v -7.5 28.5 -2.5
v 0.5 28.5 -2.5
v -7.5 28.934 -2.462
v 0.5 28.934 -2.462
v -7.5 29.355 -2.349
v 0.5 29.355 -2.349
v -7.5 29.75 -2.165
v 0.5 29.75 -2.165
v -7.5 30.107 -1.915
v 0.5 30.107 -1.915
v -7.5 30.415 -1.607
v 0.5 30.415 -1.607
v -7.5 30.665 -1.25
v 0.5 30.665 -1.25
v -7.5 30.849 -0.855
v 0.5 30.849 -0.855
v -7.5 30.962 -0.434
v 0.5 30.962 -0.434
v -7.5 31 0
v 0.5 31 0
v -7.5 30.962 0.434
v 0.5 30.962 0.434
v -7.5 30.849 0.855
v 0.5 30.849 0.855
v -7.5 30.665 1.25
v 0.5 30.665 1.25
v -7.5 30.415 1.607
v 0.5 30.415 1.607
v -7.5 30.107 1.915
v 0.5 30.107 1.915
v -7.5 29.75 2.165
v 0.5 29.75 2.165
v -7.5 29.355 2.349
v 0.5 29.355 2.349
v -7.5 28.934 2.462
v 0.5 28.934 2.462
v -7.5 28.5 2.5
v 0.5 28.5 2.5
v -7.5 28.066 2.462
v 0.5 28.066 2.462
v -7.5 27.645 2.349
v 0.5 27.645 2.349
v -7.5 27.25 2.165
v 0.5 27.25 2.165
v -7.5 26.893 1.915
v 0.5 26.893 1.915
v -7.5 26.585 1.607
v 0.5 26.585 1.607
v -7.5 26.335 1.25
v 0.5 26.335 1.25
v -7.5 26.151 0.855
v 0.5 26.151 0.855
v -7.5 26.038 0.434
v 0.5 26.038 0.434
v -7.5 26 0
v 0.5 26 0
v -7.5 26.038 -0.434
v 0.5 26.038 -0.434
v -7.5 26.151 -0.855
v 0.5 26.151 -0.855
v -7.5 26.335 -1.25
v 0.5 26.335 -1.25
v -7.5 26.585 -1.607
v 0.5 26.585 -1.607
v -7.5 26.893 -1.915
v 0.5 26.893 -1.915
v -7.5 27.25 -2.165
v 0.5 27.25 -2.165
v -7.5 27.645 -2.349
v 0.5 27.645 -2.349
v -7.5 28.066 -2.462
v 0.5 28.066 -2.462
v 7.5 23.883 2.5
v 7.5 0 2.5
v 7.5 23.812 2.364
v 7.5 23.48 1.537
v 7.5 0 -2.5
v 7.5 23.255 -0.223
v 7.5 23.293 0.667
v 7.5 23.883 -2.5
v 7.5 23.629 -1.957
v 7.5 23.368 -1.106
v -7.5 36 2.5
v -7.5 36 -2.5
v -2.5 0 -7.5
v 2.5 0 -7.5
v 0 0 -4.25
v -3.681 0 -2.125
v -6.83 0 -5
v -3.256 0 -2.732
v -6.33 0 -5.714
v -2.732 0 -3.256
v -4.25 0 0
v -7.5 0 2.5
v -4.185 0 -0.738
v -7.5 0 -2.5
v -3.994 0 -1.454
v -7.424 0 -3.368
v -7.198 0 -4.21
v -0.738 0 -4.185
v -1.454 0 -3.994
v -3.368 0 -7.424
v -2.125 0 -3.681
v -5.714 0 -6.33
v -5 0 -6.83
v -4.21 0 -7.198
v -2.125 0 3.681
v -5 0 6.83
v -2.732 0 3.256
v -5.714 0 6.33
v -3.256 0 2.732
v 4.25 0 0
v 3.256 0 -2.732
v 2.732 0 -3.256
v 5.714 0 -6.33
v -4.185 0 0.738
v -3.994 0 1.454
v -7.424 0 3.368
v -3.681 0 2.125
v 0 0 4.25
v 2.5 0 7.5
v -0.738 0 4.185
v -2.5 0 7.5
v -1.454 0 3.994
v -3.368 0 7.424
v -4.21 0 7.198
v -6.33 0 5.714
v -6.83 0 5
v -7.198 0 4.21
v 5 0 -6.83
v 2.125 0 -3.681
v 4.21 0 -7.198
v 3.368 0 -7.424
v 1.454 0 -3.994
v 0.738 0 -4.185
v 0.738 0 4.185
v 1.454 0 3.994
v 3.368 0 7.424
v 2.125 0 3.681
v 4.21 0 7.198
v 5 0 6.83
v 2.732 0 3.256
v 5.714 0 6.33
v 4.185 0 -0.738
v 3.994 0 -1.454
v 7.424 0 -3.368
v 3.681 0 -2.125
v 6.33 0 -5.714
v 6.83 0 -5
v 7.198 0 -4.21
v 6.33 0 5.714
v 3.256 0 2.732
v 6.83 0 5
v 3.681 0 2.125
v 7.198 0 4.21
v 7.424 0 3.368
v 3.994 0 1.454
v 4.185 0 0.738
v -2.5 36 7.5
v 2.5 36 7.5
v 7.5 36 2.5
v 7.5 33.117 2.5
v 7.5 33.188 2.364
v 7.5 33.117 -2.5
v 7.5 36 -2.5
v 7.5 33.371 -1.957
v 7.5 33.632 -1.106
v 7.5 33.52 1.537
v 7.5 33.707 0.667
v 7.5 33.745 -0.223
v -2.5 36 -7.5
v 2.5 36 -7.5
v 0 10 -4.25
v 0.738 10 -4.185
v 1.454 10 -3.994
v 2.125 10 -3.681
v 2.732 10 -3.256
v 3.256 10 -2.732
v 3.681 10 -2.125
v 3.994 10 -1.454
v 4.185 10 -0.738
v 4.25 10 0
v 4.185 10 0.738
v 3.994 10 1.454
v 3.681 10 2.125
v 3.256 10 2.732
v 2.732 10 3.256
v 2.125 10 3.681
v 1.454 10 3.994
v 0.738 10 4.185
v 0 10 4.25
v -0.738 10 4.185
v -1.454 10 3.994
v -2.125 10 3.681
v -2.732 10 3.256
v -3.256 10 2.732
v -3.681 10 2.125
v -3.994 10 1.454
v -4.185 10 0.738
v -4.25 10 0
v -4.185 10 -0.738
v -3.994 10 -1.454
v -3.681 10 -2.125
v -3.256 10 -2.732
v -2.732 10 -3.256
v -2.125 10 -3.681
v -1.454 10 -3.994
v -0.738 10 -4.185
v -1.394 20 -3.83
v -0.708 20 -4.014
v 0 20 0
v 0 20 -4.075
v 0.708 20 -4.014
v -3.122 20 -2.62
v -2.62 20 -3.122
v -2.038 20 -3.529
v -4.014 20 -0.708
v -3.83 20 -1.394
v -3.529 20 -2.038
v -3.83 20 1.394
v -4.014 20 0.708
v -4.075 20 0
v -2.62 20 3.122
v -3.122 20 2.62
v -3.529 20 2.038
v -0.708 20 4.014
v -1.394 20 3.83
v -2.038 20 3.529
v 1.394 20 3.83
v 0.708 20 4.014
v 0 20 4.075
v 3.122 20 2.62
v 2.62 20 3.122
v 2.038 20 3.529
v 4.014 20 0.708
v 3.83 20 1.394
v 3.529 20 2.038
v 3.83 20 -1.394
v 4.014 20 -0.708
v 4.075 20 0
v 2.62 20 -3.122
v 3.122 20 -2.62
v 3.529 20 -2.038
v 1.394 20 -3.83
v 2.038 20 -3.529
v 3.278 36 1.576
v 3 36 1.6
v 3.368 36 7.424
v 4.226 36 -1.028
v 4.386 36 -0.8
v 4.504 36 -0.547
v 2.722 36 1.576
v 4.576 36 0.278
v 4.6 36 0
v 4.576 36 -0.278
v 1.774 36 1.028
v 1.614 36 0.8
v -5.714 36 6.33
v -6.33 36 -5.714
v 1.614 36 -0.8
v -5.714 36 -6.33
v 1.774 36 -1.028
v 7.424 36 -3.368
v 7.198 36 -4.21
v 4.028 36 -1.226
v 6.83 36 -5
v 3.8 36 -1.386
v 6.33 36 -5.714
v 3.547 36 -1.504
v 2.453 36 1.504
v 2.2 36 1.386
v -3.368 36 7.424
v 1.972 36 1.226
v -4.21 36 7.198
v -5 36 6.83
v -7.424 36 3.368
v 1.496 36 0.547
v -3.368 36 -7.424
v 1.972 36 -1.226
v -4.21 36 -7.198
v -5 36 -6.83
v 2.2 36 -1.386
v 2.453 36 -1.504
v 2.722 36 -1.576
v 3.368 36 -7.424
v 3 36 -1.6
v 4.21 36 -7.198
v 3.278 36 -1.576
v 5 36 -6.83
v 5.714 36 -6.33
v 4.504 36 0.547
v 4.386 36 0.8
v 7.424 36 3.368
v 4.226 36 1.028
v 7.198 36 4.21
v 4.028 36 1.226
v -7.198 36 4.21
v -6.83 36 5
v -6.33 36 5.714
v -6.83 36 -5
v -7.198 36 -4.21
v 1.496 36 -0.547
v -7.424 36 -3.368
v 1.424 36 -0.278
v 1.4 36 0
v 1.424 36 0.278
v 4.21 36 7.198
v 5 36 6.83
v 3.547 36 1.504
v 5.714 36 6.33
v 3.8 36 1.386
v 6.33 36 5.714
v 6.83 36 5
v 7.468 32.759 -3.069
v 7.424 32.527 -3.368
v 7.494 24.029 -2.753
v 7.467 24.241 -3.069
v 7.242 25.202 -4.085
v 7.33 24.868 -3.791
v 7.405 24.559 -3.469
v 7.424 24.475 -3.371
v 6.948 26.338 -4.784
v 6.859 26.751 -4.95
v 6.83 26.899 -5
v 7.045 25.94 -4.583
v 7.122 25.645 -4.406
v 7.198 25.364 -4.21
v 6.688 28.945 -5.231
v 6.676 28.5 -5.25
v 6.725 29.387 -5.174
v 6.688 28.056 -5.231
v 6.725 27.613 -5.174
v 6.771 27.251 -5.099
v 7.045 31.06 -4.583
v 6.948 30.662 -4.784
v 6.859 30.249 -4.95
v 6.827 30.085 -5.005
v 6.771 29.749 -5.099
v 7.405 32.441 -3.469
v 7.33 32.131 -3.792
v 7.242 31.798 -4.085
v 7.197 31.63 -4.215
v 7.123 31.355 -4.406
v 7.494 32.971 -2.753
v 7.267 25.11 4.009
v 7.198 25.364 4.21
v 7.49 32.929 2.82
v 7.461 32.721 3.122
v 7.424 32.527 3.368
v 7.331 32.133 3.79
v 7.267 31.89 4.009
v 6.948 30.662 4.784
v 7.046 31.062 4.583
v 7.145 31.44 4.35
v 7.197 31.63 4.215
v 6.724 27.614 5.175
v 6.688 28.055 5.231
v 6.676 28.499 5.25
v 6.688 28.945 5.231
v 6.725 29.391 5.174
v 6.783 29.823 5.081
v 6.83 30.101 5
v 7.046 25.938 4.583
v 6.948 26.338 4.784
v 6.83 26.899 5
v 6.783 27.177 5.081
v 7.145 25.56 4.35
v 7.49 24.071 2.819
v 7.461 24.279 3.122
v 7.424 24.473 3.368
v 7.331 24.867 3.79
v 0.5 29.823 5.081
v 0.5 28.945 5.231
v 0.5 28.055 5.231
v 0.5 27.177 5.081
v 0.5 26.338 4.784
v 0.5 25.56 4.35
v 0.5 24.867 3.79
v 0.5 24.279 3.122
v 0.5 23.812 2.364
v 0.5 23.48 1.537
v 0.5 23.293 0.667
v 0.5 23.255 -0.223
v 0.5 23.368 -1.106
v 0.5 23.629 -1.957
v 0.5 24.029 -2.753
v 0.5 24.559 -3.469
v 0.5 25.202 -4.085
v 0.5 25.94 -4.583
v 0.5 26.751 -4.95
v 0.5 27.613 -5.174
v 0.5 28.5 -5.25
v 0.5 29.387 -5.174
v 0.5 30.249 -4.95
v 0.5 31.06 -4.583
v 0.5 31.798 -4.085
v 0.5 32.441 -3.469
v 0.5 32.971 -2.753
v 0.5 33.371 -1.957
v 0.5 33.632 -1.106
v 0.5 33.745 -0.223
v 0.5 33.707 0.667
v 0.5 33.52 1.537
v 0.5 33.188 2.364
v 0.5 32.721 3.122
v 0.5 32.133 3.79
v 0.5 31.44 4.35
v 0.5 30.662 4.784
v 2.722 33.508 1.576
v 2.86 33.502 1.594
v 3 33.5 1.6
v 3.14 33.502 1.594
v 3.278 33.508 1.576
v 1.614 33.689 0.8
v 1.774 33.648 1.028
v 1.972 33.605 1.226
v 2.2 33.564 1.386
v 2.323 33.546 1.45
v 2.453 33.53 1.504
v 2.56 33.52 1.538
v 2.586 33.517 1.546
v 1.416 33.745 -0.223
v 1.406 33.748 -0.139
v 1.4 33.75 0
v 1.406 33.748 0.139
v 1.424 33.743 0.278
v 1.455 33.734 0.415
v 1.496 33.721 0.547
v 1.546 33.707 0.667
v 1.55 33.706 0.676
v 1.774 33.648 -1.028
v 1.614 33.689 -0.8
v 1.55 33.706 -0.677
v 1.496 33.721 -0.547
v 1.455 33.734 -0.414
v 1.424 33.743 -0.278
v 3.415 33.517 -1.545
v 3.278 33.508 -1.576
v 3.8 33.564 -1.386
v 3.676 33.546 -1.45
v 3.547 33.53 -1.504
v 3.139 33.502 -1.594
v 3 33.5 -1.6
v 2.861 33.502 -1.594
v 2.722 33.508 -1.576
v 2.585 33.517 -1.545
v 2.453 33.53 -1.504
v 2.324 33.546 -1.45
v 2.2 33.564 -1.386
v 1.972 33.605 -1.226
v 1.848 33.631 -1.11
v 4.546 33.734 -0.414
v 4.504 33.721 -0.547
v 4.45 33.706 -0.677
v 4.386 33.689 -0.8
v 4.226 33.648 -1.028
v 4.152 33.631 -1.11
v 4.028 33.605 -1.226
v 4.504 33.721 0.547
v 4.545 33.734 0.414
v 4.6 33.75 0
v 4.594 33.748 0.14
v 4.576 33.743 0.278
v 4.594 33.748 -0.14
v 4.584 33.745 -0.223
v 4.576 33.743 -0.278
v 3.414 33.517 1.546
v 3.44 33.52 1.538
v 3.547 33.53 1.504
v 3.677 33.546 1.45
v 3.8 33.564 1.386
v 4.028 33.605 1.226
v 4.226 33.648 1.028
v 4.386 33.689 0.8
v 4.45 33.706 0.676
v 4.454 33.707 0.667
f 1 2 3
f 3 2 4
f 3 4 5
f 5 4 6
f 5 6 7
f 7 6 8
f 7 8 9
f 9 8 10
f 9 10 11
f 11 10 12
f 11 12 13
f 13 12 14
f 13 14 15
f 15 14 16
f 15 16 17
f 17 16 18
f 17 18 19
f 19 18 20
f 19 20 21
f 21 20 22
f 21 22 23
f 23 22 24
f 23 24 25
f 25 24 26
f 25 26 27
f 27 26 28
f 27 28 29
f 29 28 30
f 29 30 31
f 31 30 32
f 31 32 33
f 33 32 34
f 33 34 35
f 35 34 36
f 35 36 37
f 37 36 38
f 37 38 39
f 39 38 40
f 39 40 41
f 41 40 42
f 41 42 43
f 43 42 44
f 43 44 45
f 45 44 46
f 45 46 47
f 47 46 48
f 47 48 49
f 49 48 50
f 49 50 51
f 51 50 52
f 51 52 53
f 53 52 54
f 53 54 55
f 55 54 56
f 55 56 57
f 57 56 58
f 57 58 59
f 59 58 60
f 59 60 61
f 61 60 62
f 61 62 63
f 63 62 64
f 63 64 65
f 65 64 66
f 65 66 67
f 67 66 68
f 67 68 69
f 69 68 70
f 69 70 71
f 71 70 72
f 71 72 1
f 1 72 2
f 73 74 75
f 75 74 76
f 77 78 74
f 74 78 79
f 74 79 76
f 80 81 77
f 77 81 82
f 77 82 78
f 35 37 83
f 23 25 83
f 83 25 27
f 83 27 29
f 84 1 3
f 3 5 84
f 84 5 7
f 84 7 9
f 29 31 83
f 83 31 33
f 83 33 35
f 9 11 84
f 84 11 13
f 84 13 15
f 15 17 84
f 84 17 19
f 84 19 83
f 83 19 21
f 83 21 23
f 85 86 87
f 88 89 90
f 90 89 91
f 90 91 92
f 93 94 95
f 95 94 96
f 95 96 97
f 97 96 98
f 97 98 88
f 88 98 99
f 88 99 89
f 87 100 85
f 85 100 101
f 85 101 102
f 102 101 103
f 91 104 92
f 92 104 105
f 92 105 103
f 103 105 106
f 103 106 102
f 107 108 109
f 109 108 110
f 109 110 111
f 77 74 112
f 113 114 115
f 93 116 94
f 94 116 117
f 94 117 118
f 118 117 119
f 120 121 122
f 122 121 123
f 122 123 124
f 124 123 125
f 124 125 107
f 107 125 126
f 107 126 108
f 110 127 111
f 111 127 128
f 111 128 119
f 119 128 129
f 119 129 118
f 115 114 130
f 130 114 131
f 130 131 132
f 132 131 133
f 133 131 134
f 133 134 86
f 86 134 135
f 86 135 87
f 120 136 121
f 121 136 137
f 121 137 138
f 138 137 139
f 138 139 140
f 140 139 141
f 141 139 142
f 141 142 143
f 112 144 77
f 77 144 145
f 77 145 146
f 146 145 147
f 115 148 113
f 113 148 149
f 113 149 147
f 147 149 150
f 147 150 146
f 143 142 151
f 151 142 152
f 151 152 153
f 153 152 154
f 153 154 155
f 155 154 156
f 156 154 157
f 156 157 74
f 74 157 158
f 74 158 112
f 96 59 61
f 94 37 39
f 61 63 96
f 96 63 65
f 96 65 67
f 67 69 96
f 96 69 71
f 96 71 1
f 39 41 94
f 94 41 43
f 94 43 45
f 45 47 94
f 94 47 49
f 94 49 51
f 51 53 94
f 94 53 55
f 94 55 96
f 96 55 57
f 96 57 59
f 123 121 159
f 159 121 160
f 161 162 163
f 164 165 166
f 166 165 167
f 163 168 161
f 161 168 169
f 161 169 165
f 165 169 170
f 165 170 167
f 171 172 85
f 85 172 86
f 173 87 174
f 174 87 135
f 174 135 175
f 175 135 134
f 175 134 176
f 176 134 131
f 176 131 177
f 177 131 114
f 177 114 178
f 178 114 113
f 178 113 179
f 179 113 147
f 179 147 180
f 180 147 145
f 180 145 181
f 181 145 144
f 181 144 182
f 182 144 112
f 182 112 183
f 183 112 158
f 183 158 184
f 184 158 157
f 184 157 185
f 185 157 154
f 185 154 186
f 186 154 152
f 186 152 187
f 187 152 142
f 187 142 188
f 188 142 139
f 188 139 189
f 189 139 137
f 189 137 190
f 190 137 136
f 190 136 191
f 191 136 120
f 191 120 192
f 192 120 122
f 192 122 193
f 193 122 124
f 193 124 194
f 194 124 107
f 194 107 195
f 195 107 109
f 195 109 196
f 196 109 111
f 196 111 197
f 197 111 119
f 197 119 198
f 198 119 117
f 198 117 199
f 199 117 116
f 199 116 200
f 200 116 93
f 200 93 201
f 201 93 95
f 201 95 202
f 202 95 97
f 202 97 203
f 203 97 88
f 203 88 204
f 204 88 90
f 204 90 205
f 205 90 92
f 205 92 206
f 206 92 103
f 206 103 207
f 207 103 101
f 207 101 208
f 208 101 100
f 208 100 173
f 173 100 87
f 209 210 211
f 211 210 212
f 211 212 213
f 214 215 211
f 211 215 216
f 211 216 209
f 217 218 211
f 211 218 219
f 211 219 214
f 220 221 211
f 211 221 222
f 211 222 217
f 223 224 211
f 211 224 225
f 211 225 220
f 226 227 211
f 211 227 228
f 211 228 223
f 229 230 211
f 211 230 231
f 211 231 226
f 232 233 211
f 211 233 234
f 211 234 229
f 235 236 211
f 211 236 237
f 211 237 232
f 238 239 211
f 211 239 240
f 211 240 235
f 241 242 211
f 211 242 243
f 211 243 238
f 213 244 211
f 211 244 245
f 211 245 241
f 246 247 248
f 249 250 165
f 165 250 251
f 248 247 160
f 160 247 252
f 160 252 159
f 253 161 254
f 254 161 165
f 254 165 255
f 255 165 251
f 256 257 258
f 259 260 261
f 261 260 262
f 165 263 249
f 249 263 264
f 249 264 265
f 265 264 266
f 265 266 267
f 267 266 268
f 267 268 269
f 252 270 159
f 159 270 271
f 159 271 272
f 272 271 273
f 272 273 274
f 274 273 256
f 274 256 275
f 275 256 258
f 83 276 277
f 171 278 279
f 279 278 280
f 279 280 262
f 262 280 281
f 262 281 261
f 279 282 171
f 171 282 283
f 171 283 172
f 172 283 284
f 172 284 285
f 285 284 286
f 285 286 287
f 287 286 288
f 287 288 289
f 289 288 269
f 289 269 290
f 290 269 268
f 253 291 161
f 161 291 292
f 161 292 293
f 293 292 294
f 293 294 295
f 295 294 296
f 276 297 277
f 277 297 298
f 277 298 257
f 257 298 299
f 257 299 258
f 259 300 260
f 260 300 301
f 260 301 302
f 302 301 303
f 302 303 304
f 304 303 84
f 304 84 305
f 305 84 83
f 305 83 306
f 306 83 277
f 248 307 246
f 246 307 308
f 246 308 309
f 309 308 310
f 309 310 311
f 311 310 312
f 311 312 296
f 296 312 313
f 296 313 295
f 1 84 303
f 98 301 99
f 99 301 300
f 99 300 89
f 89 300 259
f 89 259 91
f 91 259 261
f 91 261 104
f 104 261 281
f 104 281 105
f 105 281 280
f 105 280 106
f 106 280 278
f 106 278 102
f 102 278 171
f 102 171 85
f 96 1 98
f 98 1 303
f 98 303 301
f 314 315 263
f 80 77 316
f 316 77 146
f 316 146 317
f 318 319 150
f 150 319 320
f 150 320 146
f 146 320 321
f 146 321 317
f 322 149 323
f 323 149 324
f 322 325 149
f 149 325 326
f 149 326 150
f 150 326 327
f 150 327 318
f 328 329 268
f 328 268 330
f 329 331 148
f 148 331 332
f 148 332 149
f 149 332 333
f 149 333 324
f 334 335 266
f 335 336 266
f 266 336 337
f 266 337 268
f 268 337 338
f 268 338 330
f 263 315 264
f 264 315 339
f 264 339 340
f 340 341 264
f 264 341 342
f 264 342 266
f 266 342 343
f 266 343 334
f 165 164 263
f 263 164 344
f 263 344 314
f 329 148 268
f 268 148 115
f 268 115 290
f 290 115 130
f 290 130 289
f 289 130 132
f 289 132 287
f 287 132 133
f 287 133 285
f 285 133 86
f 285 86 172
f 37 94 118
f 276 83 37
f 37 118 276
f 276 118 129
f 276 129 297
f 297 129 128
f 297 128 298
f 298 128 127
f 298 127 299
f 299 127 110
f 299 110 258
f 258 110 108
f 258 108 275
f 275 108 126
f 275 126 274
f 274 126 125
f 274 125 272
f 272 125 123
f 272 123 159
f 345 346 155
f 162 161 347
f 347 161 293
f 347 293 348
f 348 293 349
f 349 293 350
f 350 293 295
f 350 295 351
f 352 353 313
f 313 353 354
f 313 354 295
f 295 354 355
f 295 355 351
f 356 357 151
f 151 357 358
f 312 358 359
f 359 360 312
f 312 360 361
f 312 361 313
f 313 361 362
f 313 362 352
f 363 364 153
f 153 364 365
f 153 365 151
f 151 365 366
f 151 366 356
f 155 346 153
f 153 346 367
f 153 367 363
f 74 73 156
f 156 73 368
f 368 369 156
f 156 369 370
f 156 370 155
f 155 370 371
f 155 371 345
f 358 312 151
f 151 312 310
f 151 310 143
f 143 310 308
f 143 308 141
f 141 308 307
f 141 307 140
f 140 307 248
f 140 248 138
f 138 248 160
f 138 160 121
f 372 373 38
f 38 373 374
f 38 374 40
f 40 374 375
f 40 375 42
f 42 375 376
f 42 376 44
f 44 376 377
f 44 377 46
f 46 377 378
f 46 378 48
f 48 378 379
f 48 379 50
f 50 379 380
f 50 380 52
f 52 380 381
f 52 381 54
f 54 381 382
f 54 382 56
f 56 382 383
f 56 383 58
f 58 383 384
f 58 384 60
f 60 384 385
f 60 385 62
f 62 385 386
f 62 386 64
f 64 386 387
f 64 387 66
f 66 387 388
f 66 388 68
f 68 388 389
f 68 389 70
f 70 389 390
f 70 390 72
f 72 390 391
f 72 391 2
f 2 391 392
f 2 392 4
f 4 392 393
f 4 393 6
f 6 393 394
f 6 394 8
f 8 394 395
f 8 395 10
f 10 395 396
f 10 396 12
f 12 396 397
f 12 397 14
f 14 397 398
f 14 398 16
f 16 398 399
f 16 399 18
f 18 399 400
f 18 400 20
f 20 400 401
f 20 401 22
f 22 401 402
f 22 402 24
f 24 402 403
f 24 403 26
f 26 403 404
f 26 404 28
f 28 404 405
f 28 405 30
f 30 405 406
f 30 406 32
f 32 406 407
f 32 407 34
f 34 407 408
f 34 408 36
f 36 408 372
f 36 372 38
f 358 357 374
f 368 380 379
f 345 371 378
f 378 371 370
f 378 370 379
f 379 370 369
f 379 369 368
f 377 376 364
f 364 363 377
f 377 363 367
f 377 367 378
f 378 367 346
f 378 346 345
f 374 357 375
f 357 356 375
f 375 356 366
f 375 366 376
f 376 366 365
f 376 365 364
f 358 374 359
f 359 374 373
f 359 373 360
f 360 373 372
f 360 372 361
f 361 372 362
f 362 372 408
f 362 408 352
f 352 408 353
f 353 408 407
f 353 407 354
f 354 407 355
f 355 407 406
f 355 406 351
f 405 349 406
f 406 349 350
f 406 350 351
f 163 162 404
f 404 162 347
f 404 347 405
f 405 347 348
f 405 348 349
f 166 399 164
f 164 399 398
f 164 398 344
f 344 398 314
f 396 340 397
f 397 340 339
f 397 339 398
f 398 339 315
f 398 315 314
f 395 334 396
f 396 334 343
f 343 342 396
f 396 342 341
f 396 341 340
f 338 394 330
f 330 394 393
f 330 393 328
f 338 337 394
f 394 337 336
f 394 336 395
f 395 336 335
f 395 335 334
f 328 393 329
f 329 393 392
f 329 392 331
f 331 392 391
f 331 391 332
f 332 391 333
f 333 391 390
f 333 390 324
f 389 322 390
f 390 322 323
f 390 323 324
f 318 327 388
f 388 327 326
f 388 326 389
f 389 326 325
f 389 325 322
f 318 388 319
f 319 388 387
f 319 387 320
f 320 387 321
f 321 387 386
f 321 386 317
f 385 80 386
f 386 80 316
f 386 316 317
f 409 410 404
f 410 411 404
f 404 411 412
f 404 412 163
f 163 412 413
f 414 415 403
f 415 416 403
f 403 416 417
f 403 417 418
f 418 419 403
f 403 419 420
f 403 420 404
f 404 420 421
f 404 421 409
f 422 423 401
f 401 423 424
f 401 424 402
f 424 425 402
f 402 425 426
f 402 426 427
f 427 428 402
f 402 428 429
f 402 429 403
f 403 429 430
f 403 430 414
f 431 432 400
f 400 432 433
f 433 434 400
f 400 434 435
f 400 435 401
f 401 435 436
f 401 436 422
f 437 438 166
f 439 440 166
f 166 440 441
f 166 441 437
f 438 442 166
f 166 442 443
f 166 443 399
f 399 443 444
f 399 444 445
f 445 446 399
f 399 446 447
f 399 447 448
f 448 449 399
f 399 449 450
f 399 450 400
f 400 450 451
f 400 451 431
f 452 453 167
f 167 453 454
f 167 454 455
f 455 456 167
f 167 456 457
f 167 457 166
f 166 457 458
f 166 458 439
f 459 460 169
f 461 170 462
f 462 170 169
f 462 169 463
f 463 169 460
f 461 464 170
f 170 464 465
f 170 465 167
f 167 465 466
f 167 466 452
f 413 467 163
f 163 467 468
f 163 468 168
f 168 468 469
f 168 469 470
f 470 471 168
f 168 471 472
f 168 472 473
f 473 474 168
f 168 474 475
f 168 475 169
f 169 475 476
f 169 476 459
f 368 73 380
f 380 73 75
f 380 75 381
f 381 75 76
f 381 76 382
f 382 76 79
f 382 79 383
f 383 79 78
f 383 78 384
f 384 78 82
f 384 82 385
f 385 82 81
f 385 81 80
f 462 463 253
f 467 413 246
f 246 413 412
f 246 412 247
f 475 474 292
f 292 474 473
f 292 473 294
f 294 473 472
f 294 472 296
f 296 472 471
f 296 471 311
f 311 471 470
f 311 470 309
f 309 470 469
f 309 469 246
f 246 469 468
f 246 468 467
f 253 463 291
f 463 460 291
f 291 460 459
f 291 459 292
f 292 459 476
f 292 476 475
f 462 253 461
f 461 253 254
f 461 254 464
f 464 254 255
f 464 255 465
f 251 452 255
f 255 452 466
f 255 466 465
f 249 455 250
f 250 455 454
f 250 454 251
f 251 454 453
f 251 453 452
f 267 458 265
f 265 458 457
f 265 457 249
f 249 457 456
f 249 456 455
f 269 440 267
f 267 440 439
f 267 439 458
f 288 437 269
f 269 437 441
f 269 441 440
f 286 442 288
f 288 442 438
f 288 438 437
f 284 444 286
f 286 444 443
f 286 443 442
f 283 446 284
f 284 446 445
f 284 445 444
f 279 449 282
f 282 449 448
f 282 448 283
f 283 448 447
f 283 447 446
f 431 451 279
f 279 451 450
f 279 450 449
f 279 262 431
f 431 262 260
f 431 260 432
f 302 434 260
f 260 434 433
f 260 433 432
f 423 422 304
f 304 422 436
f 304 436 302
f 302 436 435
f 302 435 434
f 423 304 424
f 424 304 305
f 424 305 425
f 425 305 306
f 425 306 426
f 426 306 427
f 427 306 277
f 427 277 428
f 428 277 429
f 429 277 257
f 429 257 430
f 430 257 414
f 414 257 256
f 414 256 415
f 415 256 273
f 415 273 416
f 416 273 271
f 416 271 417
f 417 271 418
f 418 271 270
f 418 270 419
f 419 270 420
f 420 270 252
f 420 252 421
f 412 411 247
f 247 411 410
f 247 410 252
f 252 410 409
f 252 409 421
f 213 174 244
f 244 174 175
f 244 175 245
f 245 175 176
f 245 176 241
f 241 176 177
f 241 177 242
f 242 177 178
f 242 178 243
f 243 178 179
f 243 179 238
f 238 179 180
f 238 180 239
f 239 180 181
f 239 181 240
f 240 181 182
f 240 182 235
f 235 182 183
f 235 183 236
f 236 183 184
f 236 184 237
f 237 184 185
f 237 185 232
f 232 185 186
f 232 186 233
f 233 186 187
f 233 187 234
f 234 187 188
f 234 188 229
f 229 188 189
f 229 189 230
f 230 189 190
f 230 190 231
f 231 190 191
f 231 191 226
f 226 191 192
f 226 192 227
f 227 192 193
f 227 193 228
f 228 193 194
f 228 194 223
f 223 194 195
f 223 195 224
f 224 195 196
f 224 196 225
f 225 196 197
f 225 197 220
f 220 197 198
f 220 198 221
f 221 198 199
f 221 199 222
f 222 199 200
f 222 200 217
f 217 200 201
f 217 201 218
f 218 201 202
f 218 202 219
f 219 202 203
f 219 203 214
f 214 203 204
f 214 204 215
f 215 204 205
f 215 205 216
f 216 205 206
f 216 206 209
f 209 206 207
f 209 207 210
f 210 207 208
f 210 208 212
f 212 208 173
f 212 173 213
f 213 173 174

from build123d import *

# Parameters (mm, degrees)
SKETCH1_W               = 15
SKETCH1_H               = 15
SKETCH1_R               = 4.25
BOSS_EXTRUDE1_DEPTH     = 20
SKETCH2_W               = 15
SKETCH2_H               = 15
BOSS_EXTRUDE2_DEPTH     = 16
SKETCH3_R               = 2.5
CUT_EXTRUDE1_DEPTH      = 40.714606885
FILLET1_R               = 5
SKETCH4_R               = 5.25
CUT_EXTRUDE2_DEPTH      = 7
CUT_EXTRUDE3_REACH      = 39.53
CUT_EXTRUDE3_END_RADIUS = 5.25
SKETCH5_R               = 1.6
CHAMFER1_SIZE           = 10
CHAMFER1_SIZE2          = 0.174550649


with BuildPart() as part:
    # Sketch1 → Boss-Extrude1 (new body)
    with BuildSketch(Plane(origin=(0, 0, 0), x_dir=(1, 0, 0), z_dir=(0, 1, 0))):
        Rectangle(SKETCH1_W, SKETCH1_H)
        with Locations(Location((0, 0, 0), (0, 0, 270))):
            Circle(SKETCH1_R, mode=Mode.SUBTRACT)
    extrude(amount=BOSS_EXTRUDE1_DEPTH)

    # Sketch2 → Boss-Extrude2 (add)
    with BuildSketch(Plane(origin=(0, 20, 0), x_dir=(1, 0, 0), z_dir=(0, 1, 0))):
        Rectangle(SKETCH2_W, SKETCH2_H)
    extrude(amount=BOSS_EXTRUDE2_DEPTH)

    # Sketch3 → Cut-Extrude1 (cut, through all)
    with BuildSketch(Plane(origin=(7.5, 0, 0), x_dir=(0, 0, -1), z_dir=(1, 0, 0))):
        with Locations((0, 28.5)):
            Circle(SKETCH3_R)
    extrude(amount=-CUT_EXTRUDE1_DEPTH, mode=Mode.SUBTRACT)

    # Fillet1
    fillet1_edges = [part.edges().sort_by_distance(p)[0] for p in [
        (-7.5, 18, -7.5),
        (7.5, 18, -7.5),
        (7.5, 18, 7.5),
        (-7.5, 18, 7.5),
    ]]
    fillet(fillet1_edges, radius=FILLET1_R - 0.0001)  # a hair under: the kernel refuses the full size

    # Sketch4 → Cut-Extrude2 (cut)
    with BuildSketch(Plane(origin=(7.5, 0, 0), x_dir=(0, 0, -1), z_dir=(1, 0, 0))):
        with Locations((0, 28.5)):
            Circle(SKETCH4_R)
    extrude(amount=-CUT_EXTRUDE2_DEPTH, mode=Mode.SUBTRACT)

    # Cut-Extrude3: up to this cylinder (the profile starts outside it)
    cut_extrude3_end = Plane(origin=(3, 28.5, 0), z_dir=(1, 0, 0)) * Cylinder(CUT_EXTRUDE3_END_RADIUS, 90.56, mode=Mode.PRIVATE)
    # Sketch5 → Cut-Extrude3 (cut, up to the surface)
    with BuildSketch(Plane(origin=(0, 36, 0), x_dir=(1, 0, 0), z_dir=(0, 1, 0)), mode=Mode.PRIVATE) as cut_extrude3_sk1:
        with Locations(Location((3, 0, 0), (0, 0, 270))):
            Circle(SKETCH5_R)
    cut_extrude3_tool1 = extrude(cut_extrude3_sk1.sketch, amount=-CUT_EXTRUDE3_REACH, mode=Mode.PRIVATE) - cut_extrude3_end
    add(cut_extrude3_tool1.solids().sort_by_distance((3, 36, 0))[0], mode=Mode.SUBTRACT)

    # Chamfer1
    chamfer1_edges = [part.edges().sort_by_distance(p)[0] for p in [
        (0, 20, -4.25),
    ]]
    chamfer1_side = [part.faces().sort_by_distance(p)[0] for p in [
        (0, 10, -4.25),
    ]]
    chamfer(chamfer1_edges, length=CHAMFER1_SIZE, length2=CHAMFER1_SIZE2, reference=chamfer1_side[0])


solid = part.part
